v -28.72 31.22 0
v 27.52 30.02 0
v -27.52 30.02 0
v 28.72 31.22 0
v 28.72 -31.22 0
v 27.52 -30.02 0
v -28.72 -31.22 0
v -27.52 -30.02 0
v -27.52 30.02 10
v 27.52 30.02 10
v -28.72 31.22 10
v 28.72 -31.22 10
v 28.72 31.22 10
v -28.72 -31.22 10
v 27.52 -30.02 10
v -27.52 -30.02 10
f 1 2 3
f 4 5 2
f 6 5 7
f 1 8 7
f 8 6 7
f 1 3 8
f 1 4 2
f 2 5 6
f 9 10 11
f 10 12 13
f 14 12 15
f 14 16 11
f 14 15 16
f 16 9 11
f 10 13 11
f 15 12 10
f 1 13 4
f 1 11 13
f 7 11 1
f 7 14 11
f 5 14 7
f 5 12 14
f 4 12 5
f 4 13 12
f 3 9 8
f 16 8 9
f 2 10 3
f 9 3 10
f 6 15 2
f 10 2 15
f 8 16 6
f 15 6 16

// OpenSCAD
// ============================================================
// support.scad
// "ㅁ"자 사각 프레임 (4면 모두 닫힌 링).
// 안쪽 기준 55.04mm x 60.04mm, 벽 두께 1.2mm, 높이(Z) 10mm.
// ============================================================

module support() {
    inner_w = 55.04; // 안쪽 가로(X)
    inner_d = 60.04; // 안쪽 세로(Y)
    wall_t  = 1.2;   // 벽 두께 (안쪽 기준 바깥으로)
    z       = 10;    // 높이(Z)

    outer_w = inner_w + 2 * wall_t;
    outer_d = inner_d + 2 * wall_t;

    color("SteelBlue")
        linear_extrude(height = z)
            difference() {
                square([outer_w, outer_d], center = true);
                square([inner_w, inner_d], center = true);
            }
}

support();
